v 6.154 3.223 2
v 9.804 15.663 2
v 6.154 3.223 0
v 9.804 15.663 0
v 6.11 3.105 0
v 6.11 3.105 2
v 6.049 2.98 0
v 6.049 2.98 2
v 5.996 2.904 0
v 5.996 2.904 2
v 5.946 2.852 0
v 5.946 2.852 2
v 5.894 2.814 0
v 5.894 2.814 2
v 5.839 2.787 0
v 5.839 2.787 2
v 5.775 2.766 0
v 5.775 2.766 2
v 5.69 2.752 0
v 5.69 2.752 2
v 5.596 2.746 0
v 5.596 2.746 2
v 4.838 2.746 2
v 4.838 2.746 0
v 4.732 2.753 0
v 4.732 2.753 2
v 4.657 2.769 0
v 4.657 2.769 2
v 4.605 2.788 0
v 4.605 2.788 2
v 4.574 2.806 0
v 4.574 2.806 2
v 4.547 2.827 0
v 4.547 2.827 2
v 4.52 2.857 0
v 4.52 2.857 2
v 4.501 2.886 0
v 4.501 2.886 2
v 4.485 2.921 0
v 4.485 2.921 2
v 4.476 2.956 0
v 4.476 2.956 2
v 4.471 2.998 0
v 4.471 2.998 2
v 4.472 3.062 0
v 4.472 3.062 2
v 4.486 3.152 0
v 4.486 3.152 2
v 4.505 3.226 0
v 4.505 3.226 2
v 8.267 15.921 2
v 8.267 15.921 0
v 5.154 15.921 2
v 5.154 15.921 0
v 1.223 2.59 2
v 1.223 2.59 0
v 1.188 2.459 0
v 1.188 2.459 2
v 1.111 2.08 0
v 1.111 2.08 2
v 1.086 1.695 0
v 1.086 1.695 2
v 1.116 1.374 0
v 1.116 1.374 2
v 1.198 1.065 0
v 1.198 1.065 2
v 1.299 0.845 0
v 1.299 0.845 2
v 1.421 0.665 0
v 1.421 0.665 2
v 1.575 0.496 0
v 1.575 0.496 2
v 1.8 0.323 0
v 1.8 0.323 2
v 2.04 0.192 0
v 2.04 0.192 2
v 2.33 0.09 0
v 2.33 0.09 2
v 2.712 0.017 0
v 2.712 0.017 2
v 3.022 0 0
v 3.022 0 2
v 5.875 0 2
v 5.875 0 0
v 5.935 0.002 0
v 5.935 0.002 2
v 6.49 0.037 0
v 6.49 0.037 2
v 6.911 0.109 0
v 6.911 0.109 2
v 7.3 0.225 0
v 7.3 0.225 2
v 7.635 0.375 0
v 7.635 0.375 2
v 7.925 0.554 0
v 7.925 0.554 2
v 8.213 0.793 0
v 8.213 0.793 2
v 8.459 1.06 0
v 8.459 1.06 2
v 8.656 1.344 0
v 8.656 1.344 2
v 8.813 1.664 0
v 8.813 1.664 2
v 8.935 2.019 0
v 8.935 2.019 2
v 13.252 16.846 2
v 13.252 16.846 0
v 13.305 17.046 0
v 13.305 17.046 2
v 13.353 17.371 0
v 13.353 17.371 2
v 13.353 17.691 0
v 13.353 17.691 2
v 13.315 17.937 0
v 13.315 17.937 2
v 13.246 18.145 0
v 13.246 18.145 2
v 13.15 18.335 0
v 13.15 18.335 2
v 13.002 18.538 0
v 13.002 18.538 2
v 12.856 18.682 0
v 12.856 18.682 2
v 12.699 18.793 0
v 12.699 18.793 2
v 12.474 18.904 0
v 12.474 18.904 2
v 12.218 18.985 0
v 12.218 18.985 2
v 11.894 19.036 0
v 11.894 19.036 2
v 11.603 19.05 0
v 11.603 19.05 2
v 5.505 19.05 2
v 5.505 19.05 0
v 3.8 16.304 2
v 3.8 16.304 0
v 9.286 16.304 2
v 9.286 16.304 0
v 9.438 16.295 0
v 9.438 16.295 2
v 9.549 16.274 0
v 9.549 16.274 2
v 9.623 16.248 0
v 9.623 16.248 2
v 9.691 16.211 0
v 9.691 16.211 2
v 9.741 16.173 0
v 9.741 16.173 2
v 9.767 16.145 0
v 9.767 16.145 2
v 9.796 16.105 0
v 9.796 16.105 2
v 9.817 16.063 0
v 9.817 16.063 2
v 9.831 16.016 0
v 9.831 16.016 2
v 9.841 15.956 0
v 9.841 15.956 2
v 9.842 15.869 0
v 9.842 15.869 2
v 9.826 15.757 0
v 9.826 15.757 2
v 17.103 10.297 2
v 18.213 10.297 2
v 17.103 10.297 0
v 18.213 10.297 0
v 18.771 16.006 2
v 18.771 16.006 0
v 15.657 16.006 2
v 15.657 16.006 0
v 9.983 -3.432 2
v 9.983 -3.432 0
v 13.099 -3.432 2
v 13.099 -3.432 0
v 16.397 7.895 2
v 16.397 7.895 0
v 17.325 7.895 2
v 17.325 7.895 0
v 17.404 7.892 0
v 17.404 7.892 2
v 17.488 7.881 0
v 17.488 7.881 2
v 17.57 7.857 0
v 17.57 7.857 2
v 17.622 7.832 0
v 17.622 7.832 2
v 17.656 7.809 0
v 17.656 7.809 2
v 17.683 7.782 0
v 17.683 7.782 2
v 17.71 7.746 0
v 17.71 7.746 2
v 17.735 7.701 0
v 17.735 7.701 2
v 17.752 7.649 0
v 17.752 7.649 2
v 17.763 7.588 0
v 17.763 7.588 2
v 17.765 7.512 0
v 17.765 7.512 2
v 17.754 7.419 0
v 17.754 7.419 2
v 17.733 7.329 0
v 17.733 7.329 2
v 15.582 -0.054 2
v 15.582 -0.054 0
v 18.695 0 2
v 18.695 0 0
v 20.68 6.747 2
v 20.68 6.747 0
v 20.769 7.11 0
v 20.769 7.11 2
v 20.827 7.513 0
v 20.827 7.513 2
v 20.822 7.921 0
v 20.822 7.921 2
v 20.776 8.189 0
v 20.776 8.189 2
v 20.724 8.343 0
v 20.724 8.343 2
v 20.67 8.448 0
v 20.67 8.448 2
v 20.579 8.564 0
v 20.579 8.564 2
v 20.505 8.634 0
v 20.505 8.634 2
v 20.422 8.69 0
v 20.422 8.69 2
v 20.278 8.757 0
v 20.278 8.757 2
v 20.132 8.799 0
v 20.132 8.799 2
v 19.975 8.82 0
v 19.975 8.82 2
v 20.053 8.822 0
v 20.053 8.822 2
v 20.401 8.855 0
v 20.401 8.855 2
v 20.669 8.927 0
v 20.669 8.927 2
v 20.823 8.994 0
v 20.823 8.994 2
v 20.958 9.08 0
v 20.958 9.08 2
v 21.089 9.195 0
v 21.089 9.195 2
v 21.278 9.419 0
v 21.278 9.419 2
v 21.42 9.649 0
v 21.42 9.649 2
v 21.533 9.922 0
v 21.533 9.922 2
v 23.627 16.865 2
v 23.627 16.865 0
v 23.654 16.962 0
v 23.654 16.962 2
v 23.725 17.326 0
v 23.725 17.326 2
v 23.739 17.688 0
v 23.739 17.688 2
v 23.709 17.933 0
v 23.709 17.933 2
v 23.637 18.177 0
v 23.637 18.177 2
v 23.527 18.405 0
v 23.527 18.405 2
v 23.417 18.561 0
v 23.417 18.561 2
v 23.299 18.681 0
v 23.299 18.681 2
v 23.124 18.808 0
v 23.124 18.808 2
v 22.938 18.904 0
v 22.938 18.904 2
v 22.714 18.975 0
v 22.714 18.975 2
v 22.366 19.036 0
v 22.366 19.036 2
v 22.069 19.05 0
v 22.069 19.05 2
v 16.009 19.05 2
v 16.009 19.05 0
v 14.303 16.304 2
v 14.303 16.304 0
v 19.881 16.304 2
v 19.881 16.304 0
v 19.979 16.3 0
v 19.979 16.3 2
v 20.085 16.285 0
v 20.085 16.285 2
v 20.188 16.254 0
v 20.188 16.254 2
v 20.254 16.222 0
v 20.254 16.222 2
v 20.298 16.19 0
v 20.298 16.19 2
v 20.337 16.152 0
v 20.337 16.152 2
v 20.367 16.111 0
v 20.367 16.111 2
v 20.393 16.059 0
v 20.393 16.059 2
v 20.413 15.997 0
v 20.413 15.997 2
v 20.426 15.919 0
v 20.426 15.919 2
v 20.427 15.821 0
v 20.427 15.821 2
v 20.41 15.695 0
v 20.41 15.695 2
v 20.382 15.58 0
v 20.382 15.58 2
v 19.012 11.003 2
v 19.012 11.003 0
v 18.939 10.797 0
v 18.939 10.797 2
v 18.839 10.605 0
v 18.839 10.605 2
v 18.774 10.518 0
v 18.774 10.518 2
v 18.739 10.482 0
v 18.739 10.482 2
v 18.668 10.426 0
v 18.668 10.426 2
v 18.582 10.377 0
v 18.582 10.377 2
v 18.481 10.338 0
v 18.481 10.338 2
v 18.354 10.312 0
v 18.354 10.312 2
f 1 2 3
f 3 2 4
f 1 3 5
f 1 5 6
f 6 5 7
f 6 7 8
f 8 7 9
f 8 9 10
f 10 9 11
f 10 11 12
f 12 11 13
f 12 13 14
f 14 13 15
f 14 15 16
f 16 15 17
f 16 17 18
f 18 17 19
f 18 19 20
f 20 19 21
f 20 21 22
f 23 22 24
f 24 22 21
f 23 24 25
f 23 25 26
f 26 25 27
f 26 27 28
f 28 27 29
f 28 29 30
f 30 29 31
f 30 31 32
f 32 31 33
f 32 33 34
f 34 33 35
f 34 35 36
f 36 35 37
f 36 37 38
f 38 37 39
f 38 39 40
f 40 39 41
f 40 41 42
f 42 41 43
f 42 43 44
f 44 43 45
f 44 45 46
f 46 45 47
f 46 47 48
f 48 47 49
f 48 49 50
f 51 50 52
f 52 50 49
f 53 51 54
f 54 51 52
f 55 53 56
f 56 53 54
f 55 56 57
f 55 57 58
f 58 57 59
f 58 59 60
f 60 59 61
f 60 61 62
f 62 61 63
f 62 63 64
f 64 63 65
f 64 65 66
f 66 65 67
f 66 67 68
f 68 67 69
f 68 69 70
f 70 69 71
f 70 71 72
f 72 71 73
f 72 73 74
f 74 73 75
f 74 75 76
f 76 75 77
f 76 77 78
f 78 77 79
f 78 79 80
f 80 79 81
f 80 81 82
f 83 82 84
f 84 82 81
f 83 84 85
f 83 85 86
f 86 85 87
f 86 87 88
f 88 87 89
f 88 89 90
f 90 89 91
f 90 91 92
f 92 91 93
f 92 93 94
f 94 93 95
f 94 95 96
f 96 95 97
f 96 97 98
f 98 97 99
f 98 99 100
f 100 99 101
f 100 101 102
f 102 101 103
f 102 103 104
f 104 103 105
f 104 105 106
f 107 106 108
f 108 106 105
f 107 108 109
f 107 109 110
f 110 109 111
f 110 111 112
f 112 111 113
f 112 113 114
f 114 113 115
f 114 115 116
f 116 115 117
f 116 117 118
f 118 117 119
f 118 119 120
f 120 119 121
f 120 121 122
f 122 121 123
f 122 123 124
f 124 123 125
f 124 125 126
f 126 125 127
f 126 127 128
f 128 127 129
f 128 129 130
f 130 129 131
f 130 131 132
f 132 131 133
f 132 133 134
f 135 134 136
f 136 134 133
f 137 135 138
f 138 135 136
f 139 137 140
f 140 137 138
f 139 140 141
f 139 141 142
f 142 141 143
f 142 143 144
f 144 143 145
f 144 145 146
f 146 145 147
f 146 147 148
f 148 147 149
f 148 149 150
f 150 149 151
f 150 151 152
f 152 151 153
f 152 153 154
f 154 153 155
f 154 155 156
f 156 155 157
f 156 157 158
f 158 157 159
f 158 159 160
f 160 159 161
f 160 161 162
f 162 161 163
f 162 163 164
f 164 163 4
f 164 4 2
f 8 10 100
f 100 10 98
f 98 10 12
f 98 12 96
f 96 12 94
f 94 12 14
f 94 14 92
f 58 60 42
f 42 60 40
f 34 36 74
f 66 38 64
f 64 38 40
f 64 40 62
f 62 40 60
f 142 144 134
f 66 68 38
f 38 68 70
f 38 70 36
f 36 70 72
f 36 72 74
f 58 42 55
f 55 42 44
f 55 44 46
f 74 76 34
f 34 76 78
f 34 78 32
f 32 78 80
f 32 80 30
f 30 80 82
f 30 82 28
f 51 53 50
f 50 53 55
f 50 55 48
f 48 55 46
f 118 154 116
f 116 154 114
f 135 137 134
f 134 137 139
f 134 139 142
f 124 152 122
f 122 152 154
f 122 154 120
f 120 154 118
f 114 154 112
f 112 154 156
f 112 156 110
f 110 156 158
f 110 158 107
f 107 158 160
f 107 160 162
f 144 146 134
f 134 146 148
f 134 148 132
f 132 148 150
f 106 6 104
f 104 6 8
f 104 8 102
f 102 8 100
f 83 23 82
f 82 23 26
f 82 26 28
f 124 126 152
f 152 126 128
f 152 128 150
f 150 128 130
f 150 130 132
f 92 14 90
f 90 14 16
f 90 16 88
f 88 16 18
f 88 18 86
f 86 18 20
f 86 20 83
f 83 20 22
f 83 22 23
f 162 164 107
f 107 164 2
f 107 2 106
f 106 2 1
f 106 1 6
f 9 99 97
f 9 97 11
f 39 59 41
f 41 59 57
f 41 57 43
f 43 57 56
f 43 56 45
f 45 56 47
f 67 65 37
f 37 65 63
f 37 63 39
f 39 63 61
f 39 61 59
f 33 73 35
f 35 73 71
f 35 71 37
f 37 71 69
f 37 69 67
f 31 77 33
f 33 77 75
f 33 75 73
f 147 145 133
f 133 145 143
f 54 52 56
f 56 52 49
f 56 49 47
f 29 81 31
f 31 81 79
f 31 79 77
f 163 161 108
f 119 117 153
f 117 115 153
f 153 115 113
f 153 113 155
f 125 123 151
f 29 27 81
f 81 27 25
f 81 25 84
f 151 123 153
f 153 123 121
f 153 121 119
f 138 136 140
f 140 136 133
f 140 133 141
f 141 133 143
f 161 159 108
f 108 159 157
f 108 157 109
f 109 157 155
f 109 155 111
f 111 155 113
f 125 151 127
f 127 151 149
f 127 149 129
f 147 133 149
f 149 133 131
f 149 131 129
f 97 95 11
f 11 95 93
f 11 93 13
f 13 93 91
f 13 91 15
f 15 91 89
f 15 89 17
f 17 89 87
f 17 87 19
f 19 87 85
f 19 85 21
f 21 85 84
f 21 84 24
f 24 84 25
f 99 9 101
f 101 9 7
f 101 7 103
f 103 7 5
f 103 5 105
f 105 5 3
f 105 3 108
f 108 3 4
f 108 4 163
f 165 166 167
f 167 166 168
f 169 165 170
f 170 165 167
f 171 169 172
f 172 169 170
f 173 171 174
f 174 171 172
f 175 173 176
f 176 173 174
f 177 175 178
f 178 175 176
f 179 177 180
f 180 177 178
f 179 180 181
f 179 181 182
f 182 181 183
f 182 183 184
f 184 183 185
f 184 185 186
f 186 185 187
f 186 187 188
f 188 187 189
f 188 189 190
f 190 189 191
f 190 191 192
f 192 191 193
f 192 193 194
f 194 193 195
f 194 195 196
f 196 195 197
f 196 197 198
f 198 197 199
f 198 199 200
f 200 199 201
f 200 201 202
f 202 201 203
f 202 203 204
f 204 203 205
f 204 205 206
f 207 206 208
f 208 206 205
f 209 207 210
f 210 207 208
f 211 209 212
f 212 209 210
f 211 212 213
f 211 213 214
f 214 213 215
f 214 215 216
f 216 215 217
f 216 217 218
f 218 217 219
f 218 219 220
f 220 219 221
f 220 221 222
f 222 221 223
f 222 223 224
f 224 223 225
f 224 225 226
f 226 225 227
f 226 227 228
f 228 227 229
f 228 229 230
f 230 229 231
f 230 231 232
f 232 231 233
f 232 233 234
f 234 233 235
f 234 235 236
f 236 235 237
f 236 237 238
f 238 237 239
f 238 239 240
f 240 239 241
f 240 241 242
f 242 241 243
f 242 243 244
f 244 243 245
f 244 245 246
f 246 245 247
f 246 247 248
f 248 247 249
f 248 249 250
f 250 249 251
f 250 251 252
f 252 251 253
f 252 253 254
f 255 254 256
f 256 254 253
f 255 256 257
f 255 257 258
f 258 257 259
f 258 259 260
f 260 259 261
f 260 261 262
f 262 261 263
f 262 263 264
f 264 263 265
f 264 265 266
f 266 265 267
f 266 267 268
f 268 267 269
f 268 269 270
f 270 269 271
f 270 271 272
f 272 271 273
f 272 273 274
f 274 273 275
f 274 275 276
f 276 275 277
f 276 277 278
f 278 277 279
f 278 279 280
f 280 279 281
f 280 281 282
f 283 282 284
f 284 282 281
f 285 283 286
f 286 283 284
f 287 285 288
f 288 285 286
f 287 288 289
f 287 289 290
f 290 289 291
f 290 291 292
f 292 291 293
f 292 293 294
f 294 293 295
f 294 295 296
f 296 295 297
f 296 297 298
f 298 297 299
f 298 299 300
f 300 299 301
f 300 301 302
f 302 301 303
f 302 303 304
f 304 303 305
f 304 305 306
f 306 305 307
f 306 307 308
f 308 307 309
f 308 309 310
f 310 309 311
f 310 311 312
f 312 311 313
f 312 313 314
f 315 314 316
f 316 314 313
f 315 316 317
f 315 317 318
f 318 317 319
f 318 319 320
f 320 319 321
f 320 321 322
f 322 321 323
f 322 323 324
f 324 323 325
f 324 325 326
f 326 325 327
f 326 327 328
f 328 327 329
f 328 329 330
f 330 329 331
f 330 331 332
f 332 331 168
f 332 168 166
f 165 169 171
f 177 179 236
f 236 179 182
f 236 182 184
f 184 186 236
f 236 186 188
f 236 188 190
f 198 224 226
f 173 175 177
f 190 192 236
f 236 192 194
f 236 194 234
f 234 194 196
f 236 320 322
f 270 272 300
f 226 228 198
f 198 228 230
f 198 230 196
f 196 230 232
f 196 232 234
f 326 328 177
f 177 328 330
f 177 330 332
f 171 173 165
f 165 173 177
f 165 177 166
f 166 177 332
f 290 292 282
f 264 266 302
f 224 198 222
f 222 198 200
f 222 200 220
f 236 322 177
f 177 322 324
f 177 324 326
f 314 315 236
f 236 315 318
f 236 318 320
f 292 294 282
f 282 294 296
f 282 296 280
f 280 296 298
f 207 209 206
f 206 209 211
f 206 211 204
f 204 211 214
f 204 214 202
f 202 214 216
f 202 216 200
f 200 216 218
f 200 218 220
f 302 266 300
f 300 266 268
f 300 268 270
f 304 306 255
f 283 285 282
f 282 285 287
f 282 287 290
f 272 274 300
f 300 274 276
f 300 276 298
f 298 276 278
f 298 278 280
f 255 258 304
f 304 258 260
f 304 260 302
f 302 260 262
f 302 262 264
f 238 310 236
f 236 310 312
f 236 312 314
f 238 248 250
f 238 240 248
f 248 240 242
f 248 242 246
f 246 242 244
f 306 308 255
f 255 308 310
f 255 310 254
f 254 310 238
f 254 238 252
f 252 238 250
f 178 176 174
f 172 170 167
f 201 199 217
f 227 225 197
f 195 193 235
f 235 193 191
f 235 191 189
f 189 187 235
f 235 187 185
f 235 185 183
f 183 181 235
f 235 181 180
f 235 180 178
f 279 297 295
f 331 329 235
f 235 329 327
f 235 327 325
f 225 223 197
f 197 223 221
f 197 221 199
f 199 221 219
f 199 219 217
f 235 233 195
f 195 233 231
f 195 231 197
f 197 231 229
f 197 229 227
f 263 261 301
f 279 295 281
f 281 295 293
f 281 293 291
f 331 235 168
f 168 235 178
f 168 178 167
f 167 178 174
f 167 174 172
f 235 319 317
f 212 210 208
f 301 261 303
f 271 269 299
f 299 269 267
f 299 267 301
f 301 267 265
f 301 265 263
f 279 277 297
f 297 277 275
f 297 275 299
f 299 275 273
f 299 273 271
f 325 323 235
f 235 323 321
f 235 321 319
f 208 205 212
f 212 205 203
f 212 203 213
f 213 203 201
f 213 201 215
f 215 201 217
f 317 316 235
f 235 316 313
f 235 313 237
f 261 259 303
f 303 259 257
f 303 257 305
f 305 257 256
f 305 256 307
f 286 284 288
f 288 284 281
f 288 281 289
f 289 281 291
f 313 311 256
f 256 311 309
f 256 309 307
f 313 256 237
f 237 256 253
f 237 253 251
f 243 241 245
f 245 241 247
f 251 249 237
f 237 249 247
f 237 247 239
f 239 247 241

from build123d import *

# Parameters (mm, degrees)
BOSS_EXTRU_1_DEPTH   = 2
BOSS_EXTRU_1_2_DEPTH = 2


with BuildPart() as part:
    # Esquisse1 → Boss.-Extru.1 (new body)
    with BuildSketch(Plane.XY):
        with BuildLine():
            add(Edge.make_bspline(
                [(9.803885135, 15.663154561), (9.816409793, 15.712904153), (9.839659183, 15.805253798), (9.846149572, 15.938306858), (9.827265222, 16.053553889), (9.77282614, 16.148463232), (9.688153375, 16.218534536), (9.579091426, 16.27124441), (9.441331185, 16.298352791), (9.340962068, 16.302044781), (9.286338682, 16.304054054)],
                knots=[0, 0, 0, 0, 1.200744757, 2.228929884, 3.104743097, 3.903101275, 4.735424252, 5.644967986, 6.718332635, 8, 8, 8, 8], degree=3))
            Line((9.286338682, 16.304054054), (3.799809966, 16.304054054))
            Line((3.799809966, 16.304054054), (5.505299831, 19.05))
            Line((5.505299831, 19.05), (11.603230574, 19.05))
            add(Edge.make_bspline(
                [(11.603230574, 19.05), (11.68824262, 19.047896263), (11.852545246, 19.043830373), (12.088620561, 19.014099347), (12.305851815, 18.967079914), (12.502799226, 18.896774588), (12.681276033, 18.80798568), (12.841971855, 18.701019071), (12.979785219, 18.569988421), (13.097013166, 18.421799764), (13.197447048, 18.261684848), (13.272218183, 18.087678978), (13.327127625, 17.904277464), (13.355234183, 17.710184118), (13.363372801, 17.507037584), (13.348727902, 17.294311327), (13.315109158, 17.07116462), (13.273687954, 16.922244886), (13.252407095, 16.845734797)],
                knots=[0, 0, 0, 0, 1.227025702, 2.371470339, 3.429649678, 4.429654124, 5.381889622, 6.301745996, 7.205530584, 8.114459748, 9.024121477, 9.9255999, 10.840282126, 11.780196128, 12.748817052, 13.770322343, 14.854464549, 16, 16, 16, 16], degree=3))
            Line((13.252407095, 16.845734797), (8.935050676, 2.019235642))
            add(Edge.make_bspline(
                [(8.935050676, 2.019235642), (8.905603638, 1.923829672), (8.848514798, 1.738866552), (8.734619241, 1.478977208), (8.6013741, 1.244562414), (8.446022548, 1.037706876), (8.280132329, 0.850688776), (8.098115046, 0.688523921), (7.91166126, 0.538685851), (7.645802968, 0.371446897), (7.287882261, 0.20734529), (6.83027548, 0.080074421), (6.355435913, 0.016058195), (6.035524402, 0.005357408), (5.875358953, 0)],
                knots=[0, 0, 0, 0, 0.904305839, 1.753173633, 2.56606415, 3.342155626, 4.093630258, 4.827654605, 5.54882605, 6.258993598, 7.668964108, 9.099978565, 10.548088398, 12, 12, 12, 12], degree=3))
            Line((5.875358953, 0), (3.022149493, 0))
            add(Edge.make_bspline(
                [(3.022149493, 0), (2.939784699, 0.001859381), (2.778868248, 0.00549206), (2.543113775, 0.039920762), (2.317285433, 0.089467356), (2.102951987, 0.161461504), (1.904436206, 0.25437857), (1.725410538, 0.369372007), (1.562417554, 0.49985257), (1.422844741, 0.654627603), (1.302810827, 0.827630135), (1.209060792, 1.021308482), (1.142776616, 1.234886955), (1.095503893, 1.466467906), (1.081341853, 1.719795942), (1.095343569, 1.993031733), (1.141638538, 2.286822184), (1.194961805, 2.486272646), (1.222804054, 2.590413851)],
                knots=[0, 0, 0, 0, 1.038589481, 2.029096732, 3.000411816, 3.952682251, 4.875924781, 5.758235803, 6.631926692, 7.502116385, 8.378061026, 9.280964095, 10.204757568, 11.193465298, 12.255788728, 13.396298177, 14.640501287, 16, 16, 16, 16], degree=3))
            Line((1.222804054, 2.590413851), (5.154011824, 15.920586993))
            Line((5.154011824, 15.920586993), (8.267335304, 15.920586993))
            Line((8.267335304, 15.920586993), (4.505067568, 3.225950169))
            add(Edge.make_bspline(
                [(4.505067568, 3.225950169), (4.494912881, 3.188637516), (4.476261524, 3.120104465), (4.467416901, 3.021318635), (4.475422066, 2.935434328), (4.509964632, 2.864613473), (4.563226616, 2.807570062), (4.639322457, 2.770768603), (4.732807448, 2.750320602), (4.800815992, 2.747481105), (4.837584459, 2.745945946)],
                knots=[0, 0, 0, 0, 1.268310745, 2.32953697, 3.247763845, 4.062404139, 4.872795954, 5.766252807, 6.79233614, 8, 8, 8, 8], degree=3))
            Line((4.837584459, 2.745945946), (5.596473818, 2.745945946))
            add(Edge.make_bspline(
                [(5.596473818, 2.745945946), (5.634103248, 2.747605816), (5.705562241, 2.750757941), (5.806074156, 2.771006828), (5.891232253, 2.808798608), (5.987623668, 2.882759994), (6.082803758, 3.022628189), (6.128939509, 3.152200592), (6.154244088, 3.223268581)],
                knots=[0, 0, 0, 0, 0.844699856, 1.604100825, 2.286462665, 2.916384278, 4.308695666, 6, 6, 6, 6], degree=3))
            Line((6.154244088, 3.223268581), (9.803885135, 15.663154561))
        make_face()
    extrude(amount=BOSS_EXTRU_1_DEPTH)


with BuildPart() as body_2:
    # Esquisse1 → Boss.-Extru.1 2 (new body)
    with BuildSketch(Plane.XY):
        with BuildLine():
            add(Edge.make_bspline(
                [(18.212808277, 10.297297297), (18.295918717, 10.304231778), (18.458683838, 10.317812401), (18.651799119, 10.403174373), (18.783529757, 10.51928371), (18.868943797, 10.649235383), (18.950818794, 10.811558355), (18.990521419, 10.935662023), (19.011921453, 11.002554899)],
                knots=[0, 0, 0, 0, 1.287265703, 2.521006488, 3.188322154, 3.983954908, 4.91333547, 6, 6, 6, 6], degree=3))
            Line((19.011921453, 11.002554899), (20.382212838, 15.580025338))
            add(Edge.make_bspline(
                [(20.382212838, 15.580025338), (20.396642206, 15.635969028), (20.423386947, 15.739660302), (20.433184109, 15.890007697), (20.413130714, 16.019111457), (20.364303885, 16.126616895), (20.283303647, 16.210284539), (20.171664035, 16.264627056), (20.034861699, 16.300081609), (19.934655406, 16.302664666), (19.880755912, 16.304054054)],
                knots=[0, 0, 0, 0, 1.269702279, 2.353385088, 3.291366245, 4.118613865, 4.911701318, 5.800525574, 6.816934998, 8, 8, 8, 8], degree=3))
            Line((19.880755912, 16.304054054), (14.303053209, 16.304054054))
            Line((14.303053209, 16.304054054), (16.008543074, 19.05))
            Line((16.008543074, 19.05), (22.068931588, 19.05))
            add(Edge.make_bspline(
                [(22.068931588, 19.05), (22.15394113, 19.047951653), (22.316464953, 19.044035562), (22.549960633, 19.014165272), (22.762858807, 18.966060825), (22.957179159, 18.901310345), (23.128515517, 18.810431195), (23.280192277, 18.70336331), (23.411632361, 18.575621897), (23.517866758, 18.427313968), (23.603450785, 18.265134782), (23.671026247, 18.093539129), (23.716953928, 17.911566832), (23.740935983, 17.719772333), (23.742292178, 17.518491613), (23.726254943, 17.307561109), (23.68884247, 17.087505199), (23.647938194, 16.940164418), (23.626934122, 16.864505912)],
                knots=[0, 0, 0, 0, 1.251338017, 2.392345991, 3.458656697, 4.461694018, 5.397650846, 6.303325578, 7.187420856, 8.082419285, 8.977320952, 9.881560306, 10.791242046, 11.733101695, 12.720213325, 13.749750695, 14.844512033, 16, 16, 16, 16], degree=3))
            Line((23.626934122, 16.864505912), (21.53261402, 9.921875))
            add(Edge.make_bspline(
                [(21.53261402, 9.921875), (21.507413321, 9.852380032), (21.456973203, 9.713283324), (21.350545111, 9.513576411), (21.212435809, 9.328474623), (21.053030698, 9.149837602), (20.851128151, 8.996529077), (20.596900937, 8.894999309), (20.300593096, 8.829658609), (20.087641735, 8.823180727), (19.974611486, 8.819742399)],
                knots=[0, 0, 0, 0, 0.858061207, 1.717440721, 2.616729748, 3.535235509, 4.492594278, 5.530155533, 6.689056816, 8, 8, 8, 8], degree=3))
            add(Edge.make_bspline(
                [(19.974611486, 8.819742399), (20.027628658, 8.81419687), (20.129693255, 8.803521042), (20.27309683, 8.762185313), (20.400598827, 8.705832246), (20.513512551, 8.633871368), (20.605055661, 8.539073707), (20.684472118, 8.432067947), (20.743720273, 8.305100232), (20.799813691, 8.1118793), (20.835016452, 7.84420689), (20.835302838, 7.500459073), (20.781083345, 7.129806974), (20.714673849, 6.87855463), (20.679869088, 6.746875)],
                knots=[0, 0, 0, 0, 0.748232156, 1.440439236, 2.087360142, 2.704291393, 3.308549052, 3.929435439, 4.570224255, 5.265958673, 6.751725874, 8.347722503, 10.085866424, 12, 12, 12, 12], degree=3))
            Line((20.679869088, 6.746875), (18.695494088, 0))
            Line((18.695494088, 0), (15.582170608, -0.053631757))
            Line((15.582170608, -0.053631757), (17.732804054, 7.328779561))
            add(Edge.make_bspline(
                [(17.732804054, 7.328779561), (17.743157939, 7.370537136), (17.762356691, 7.447966366), (17.768841812, 7.560804024), (17.753584394, 7.660340167), (17.715473563, 7.746050368), (17.654720853, 7.817596302), (17.564354256, 7.862692412), (17.453189811, 7.8926271), (17.370150277, 7.893903634), (17.325202703, 7.894594595)],
                knots=[0, 0, 0, 0, 1.198272128, 2.22190316, 3.132016759, 3.980240005, 4.810681926, 5.692336566, 6.750909741, 8, 8, 8, 8], degree=3))
            Line((17.325202703, 7.894594595), (16.397373311, 7.894594595))
            Line((16.397373311, 7.894594595), (13.09902027, -3.432432432))
            Line((13.09902027, -3.432432432), (9.983015203, -3.432432432))
            Line((9.983015203, -3.432432432), (15.657255068, 16.006397804))
            Line((15.657255068, 16.006397804), (18.770578547, 16.006397804))
            Line((18.770578547, 16.006397804), (17.102630912, 10.297297297))
            Line((17.102630912, 10.297297297), (18.212808277, 10.297297297))
        make_face()
    extrude(amount=BOSS_EXTRU_1_2_DEPTH)


solid = Compound([part.part, body_2.part])
